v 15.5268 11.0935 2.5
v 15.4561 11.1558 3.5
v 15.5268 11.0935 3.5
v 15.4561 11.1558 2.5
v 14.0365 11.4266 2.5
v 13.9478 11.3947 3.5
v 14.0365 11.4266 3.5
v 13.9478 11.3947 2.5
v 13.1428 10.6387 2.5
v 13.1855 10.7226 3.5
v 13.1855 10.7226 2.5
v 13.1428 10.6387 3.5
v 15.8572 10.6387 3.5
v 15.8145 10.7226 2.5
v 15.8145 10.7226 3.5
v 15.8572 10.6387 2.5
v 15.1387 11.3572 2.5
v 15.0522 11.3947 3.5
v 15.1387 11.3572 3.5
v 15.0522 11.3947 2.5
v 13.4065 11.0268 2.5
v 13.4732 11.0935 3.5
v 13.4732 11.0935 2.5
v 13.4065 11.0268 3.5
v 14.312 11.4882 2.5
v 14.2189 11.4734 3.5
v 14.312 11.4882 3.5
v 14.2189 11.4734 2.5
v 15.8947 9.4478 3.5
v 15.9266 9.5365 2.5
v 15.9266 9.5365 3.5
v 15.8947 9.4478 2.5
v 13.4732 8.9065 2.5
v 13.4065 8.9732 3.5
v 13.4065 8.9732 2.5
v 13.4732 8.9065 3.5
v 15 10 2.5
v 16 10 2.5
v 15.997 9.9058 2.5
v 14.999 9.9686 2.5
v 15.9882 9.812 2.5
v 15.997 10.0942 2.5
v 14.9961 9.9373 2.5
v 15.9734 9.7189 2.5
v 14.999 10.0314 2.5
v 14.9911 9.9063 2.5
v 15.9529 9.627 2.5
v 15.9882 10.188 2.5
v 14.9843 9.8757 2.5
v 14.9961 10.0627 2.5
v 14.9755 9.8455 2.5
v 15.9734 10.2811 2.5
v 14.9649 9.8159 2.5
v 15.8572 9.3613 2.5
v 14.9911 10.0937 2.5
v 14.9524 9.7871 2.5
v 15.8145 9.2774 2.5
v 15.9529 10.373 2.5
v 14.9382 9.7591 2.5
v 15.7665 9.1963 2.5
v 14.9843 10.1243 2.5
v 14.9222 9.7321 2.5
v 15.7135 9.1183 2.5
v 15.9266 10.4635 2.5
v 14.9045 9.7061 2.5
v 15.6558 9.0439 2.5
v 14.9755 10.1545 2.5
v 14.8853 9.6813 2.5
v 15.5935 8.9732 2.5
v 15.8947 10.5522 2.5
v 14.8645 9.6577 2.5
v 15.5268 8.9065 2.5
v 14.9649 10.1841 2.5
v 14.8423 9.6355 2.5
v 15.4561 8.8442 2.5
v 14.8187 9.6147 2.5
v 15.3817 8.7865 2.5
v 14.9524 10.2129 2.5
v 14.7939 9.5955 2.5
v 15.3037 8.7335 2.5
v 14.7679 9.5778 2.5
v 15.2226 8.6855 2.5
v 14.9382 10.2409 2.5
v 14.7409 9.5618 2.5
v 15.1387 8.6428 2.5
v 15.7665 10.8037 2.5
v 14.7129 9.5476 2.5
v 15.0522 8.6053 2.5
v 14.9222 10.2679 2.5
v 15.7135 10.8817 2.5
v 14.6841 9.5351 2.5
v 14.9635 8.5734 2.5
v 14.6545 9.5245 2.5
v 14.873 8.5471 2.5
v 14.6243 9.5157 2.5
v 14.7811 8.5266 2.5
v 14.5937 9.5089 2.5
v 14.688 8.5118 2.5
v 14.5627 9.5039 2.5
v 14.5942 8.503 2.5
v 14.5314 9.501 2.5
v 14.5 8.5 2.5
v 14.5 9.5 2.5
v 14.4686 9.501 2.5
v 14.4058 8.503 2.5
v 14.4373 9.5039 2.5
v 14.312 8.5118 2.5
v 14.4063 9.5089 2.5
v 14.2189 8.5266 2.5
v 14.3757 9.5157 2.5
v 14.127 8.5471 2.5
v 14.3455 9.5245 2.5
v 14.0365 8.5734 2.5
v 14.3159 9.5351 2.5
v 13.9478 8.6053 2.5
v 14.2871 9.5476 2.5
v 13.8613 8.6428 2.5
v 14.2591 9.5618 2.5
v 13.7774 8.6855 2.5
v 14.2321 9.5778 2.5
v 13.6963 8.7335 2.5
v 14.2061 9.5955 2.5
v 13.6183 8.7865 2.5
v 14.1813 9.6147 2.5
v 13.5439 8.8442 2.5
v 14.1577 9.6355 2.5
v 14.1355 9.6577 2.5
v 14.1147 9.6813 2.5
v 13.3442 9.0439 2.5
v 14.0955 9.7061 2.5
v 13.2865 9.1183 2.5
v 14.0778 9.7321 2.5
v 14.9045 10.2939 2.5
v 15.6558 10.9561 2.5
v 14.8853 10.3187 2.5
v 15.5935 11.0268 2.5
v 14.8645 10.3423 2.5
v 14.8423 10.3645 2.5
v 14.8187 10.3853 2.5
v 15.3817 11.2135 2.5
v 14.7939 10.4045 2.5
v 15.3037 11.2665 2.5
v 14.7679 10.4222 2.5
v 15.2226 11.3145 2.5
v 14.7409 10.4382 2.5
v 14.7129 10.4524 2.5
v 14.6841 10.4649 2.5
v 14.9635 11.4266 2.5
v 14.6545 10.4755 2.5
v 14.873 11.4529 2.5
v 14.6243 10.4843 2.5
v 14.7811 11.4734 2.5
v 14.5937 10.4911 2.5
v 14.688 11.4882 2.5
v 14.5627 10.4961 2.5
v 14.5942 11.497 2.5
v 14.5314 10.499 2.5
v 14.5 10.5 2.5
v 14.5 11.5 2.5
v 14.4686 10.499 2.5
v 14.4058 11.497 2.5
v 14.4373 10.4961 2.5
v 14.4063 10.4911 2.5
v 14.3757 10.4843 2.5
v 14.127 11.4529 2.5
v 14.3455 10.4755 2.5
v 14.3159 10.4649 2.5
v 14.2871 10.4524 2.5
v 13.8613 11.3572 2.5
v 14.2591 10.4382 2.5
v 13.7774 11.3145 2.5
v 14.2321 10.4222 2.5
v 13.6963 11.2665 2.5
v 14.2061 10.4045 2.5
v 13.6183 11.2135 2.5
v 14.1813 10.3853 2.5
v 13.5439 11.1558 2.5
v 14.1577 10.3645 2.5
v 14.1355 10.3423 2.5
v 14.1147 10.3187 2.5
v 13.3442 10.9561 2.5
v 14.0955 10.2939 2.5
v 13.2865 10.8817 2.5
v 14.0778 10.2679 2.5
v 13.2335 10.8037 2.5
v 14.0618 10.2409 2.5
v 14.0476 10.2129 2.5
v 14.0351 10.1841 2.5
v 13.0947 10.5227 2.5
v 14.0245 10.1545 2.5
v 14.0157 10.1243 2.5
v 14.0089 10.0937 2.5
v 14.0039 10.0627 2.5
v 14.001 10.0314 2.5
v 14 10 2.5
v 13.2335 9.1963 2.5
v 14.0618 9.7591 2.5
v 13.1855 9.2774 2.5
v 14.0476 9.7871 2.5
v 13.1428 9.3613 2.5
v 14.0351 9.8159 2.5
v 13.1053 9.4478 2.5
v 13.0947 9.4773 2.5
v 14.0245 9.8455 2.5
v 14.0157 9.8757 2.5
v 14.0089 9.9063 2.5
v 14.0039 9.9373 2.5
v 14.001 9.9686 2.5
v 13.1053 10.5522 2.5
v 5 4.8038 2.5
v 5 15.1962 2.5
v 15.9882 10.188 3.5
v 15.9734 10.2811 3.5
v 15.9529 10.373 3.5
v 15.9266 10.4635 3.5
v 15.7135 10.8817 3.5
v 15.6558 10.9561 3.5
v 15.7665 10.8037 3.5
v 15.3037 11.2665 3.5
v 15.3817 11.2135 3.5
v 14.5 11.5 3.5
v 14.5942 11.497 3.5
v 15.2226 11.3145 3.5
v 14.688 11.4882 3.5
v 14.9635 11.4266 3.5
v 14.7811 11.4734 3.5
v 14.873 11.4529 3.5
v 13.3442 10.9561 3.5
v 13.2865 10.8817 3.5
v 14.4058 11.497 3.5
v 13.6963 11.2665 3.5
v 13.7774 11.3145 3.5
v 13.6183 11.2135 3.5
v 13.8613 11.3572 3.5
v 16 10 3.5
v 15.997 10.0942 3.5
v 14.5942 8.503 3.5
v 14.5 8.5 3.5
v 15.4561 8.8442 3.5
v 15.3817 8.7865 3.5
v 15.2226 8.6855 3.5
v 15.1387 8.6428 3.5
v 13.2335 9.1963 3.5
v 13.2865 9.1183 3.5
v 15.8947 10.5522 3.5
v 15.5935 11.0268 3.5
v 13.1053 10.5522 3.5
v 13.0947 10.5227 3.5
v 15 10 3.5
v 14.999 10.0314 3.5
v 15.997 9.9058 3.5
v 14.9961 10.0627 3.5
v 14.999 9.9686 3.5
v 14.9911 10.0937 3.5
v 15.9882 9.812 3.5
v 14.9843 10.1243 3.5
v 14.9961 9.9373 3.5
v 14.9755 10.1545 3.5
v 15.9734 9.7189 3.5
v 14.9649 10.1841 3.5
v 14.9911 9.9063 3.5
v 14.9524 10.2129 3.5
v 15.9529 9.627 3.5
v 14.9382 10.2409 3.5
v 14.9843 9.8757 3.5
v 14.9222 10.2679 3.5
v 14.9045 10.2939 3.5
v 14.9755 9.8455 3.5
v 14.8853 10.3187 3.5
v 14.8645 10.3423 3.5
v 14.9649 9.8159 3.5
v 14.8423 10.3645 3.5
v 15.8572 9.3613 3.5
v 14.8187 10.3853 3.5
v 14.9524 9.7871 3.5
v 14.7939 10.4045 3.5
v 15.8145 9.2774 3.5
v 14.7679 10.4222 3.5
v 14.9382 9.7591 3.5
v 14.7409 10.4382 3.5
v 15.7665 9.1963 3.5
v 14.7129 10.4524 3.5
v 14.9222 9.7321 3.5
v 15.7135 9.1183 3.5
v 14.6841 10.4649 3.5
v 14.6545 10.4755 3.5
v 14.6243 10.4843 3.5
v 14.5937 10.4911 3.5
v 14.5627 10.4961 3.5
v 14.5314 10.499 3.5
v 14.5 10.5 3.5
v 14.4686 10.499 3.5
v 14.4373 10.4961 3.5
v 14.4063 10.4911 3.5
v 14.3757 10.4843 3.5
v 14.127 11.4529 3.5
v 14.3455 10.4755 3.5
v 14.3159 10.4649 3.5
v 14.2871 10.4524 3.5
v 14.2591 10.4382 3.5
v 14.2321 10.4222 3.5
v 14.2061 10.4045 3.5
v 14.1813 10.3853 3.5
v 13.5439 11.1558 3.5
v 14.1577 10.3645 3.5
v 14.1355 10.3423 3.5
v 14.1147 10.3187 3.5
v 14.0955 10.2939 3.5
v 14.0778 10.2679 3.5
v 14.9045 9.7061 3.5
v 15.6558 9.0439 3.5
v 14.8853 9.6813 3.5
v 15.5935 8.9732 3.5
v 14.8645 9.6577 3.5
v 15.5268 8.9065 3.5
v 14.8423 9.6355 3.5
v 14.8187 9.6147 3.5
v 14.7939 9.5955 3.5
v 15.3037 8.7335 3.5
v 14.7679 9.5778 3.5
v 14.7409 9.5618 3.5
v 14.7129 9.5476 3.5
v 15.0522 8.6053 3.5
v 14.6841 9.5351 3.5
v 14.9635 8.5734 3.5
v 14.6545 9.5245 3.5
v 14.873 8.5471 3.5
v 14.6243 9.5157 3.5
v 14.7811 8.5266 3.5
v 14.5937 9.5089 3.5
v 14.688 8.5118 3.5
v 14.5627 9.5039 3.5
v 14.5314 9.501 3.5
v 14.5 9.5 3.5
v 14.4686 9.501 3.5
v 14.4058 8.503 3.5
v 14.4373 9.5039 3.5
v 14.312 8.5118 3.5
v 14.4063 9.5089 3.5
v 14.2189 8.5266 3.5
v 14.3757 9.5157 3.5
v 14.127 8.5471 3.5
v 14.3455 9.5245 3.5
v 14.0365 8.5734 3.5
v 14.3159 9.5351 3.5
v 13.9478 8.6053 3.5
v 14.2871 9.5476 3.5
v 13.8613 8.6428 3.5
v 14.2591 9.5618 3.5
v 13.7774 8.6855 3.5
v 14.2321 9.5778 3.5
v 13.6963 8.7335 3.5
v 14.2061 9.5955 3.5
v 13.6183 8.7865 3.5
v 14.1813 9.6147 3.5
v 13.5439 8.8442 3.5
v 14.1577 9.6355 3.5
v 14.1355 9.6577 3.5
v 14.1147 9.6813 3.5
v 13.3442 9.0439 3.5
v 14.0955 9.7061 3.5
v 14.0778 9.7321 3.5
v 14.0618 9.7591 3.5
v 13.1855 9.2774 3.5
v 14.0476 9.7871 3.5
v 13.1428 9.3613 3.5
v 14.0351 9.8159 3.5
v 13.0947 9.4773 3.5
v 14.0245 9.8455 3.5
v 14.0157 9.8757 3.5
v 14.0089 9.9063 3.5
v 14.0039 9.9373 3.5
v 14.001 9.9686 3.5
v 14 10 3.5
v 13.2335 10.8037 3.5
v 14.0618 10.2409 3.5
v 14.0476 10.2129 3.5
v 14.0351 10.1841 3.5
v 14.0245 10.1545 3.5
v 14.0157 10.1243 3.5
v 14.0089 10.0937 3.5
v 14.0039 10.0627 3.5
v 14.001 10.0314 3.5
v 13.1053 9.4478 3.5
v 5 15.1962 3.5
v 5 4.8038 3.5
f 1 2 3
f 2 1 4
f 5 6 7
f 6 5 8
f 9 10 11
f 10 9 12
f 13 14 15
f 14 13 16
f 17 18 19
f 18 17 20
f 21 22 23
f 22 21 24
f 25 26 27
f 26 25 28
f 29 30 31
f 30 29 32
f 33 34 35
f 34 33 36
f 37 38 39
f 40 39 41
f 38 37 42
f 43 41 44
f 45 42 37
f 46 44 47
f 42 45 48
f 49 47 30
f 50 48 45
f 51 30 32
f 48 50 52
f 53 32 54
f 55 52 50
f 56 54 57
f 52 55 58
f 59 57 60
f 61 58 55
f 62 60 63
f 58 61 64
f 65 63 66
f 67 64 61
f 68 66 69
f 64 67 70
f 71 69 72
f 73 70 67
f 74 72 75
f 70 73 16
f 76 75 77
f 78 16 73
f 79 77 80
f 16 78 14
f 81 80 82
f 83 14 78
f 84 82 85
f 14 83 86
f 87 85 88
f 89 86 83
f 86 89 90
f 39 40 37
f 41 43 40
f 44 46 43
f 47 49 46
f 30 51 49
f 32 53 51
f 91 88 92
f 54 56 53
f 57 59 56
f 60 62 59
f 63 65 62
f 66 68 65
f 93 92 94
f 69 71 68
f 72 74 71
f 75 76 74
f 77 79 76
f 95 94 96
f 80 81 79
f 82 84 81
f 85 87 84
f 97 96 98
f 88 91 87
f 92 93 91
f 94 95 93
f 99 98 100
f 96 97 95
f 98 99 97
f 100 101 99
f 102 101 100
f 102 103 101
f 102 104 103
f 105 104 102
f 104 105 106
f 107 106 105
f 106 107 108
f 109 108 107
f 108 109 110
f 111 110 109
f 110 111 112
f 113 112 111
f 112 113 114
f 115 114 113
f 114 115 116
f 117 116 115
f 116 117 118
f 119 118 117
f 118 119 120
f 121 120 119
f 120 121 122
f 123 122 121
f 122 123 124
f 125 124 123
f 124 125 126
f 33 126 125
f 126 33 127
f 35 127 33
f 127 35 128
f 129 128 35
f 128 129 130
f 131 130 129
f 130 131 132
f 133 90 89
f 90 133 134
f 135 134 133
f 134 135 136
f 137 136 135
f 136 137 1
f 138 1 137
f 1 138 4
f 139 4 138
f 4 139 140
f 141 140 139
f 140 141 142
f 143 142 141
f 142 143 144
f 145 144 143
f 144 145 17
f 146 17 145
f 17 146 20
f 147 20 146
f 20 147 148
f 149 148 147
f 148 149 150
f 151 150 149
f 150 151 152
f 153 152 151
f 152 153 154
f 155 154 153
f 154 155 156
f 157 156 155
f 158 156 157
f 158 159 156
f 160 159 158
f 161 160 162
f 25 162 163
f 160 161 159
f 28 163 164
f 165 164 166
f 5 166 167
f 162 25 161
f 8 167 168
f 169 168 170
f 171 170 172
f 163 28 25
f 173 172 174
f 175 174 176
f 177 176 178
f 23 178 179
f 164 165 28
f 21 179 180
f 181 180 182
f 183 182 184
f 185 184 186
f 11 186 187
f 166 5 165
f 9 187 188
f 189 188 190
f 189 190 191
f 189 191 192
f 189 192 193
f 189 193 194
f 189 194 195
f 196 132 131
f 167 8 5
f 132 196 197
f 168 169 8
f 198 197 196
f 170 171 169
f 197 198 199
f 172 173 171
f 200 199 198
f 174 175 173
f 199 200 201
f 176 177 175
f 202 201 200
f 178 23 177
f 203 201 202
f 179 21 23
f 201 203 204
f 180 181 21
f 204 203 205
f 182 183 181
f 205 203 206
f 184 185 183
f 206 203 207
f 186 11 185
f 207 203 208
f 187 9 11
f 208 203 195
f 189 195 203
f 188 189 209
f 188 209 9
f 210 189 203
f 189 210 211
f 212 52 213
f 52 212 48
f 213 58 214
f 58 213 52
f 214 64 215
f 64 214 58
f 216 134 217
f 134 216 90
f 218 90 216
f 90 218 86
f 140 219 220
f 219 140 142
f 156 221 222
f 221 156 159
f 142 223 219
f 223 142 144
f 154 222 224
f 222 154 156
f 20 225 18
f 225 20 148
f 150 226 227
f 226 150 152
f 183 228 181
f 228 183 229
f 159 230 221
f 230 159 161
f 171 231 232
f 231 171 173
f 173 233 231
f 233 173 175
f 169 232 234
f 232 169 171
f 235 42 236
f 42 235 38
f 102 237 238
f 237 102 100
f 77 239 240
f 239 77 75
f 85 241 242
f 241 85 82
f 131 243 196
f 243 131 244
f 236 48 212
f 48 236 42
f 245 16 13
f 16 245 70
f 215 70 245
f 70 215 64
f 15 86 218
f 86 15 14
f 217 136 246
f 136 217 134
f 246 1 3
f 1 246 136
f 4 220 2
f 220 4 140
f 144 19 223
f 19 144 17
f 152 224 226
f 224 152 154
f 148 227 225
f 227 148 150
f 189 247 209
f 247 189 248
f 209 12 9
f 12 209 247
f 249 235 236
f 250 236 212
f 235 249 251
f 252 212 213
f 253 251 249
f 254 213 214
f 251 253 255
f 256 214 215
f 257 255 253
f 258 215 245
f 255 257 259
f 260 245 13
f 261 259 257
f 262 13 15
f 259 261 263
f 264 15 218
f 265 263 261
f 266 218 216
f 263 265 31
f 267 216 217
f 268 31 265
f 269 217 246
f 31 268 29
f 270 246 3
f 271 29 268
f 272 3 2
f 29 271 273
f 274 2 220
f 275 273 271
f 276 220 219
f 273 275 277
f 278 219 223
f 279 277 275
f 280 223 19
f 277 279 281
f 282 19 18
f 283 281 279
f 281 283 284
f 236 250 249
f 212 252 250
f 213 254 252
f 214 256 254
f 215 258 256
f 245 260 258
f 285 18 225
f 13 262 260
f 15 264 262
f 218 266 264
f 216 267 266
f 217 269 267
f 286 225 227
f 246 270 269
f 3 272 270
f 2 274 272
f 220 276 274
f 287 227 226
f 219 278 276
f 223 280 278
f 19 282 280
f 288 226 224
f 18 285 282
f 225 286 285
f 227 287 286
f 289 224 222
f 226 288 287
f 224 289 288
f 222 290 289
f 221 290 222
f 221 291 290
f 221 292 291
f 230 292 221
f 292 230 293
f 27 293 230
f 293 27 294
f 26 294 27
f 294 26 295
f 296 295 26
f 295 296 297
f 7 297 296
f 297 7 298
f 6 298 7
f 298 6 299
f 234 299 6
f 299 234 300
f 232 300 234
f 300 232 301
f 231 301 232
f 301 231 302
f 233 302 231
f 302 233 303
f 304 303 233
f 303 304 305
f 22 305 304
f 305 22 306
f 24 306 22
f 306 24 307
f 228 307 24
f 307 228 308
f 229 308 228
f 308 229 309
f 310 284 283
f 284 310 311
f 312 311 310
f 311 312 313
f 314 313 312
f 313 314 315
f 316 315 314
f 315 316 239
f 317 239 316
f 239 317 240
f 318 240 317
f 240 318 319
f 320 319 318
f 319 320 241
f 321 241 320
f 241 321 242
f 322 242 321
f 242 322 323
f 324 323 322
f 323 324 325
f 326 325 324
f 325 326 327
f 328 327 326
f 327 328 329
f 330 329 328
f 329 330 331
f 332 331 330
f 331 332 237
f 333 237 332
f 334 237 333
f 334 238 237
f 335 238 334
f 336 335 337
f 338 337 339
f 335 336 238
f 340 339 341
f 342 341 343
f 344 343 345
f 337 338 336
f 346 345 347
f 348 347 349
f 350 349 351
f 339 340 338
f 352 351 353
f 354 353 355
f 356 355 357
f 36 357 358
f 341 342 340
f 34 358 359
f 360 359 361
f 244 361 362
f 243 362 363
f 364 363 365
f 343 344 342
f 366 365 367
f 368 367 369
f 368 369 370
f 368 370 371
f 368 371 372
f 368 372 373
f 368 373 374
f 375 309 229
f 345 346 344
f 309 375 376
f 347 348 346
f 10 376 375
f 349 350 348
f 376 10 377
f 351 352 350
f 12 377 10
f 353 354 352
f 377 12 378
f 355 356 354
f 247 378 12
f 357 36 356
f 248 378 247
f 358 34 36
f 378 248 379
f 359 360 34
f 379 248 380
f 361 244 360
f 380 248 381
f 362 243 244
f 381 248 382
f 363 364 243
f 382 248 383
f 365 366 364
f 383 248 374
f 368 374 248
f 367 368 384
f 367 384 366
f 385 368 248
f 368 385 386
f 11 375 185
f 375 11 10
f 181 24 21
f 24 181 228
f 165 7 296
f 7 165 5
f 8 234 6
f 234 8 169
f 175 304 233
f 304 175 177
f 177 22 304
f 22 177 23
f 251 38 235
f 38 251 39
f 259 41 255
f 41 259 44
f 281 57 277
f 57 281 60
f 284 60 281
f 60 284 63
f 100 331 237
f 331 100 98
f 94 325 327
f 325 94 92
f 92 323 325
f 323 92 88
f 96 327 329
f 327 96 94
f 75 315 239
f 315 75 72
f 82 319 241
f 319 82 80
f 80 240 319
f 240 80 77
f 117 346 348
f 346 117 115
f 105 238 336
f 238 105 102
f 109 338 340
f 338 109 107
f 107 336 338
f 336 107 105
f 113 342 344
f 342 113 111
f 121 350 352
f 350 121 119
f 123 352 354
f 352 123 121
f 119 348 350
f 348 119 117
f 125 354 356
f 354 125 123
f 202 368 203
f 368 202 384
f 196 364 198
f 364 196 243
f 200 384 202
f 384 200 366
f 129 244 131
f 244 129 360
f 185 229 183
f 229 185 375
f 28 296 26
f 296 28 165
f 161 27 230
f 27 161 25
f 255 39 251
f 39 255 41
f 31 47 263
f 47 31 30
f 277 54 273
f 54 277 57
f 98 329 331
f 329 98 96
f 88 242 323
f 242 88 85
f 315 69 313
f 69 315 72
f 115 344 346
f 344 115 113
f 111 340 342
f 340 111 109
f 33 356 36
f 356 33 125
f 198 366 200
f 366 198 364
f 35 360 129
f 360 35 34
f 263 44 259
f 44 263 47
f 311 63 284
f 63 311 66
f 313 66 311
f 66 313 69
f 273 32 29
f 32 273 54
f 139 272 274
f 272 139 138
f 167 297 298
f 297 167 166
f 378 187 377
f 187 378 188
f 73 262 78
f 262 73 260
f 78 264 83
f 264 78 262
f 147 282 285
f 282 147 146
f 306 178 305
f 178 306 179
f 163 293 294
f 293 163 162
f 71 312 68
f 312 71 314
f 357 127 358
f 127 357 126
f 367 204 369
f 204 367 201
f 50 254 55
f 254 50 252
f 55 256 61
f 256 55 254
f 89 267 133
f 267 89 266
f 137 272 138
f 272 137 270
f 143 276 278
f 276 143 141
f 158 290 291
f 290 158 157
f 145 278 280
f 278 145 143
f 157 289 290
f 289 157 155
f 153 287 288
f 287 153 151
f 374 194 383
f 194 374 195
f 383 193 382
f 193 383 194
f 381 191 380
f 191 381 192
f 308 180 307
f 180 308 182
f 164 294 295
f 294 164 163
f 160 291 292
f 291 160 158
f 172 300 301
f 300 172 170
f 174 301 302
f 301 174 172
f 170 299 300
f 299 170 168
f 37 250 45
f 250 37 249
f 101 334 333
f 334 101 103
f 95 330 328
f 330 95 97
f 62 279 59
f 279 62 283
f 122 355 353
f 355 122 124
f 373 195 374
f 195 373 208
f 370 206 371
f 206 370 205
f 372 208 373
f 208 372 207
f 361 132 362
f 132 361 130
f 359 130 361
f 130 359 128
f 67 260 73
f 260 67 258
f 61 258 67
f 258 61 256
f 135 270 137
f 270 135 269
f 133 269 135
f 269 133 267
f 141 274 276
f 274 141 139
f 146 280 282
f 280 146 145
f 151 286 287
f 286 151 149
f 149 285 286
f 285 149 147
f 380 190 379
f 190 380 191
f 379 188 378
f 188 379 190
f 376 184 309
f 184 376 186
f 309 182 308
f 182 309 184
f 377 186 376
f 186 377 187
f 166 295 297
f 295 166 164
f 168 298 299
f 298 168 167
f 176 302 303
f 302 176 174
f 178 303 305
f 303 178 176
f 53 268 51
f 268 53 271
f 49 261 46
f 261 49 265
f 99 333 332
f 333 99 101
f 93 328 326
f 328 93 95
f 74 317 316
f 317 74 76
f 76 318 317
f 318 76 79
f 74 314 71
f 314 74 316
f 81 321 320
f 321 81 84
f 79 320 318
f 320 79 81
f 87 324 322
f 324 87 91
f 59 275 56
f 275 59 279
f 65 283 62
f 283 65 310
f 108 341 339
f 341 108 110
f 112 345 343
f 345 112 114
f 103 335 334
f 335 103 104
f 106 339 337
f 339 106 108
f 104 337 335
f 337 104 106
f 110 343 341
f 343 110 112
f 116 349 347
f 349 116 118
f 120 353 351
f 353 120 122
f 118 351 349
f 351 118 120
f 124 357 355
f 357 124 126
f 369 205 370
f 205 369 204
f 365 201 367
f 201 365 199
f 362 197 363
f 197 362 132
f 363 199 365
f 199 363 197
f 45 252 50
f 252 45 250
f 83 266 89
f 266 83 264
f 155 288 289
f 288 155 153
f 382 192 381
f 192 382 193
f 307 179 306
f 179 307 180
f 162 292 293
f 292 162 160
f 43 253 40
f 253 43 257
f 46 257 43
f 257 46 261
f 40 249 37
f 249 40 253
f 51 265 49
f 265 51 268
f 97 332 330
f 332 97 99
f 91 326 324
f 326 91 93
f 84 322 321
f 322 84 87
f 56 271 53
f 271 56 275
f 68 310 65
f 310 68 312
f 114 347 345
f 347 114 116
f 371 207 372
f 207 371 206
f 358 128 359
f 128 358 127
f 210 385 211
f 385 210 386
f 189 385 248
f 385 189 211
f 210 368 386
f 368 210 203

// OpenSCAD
$fn = 100;
s = 0.0001;

module base(){
    minkowski(){
        translate([1,1,0]) cube([18, 18, 2]);
        cylinder(1,1,1);
    }
}

//translate([0,0,-10]) color("red")
//base();

module thore(thore_radius, tube_diameter, angle){
    rotate_extrude(angle=angle) {
        translate([thore_radius - tube_diameter/2, 0])circle(d=tube_diameter);
    }
}

//translate([0, 10, 0]) rotate([0, 90, 0]) cylinder(5, 0.5,0.5);
//translate([5, 5, 0]) rotate([-90, 0, 0]) cylinder(10, 0.5,0.5);
//translate([5.5,5,0]) rotate([0,0,180]) thore(1, 1, 130);
//translate([5.5,15,0]) rotate([180,0,180]) thore(1, 1, 130);
//translate([5.8, 4.6, 0]) rotate([-90, 0, -50]) cylinder(10, 0.5,0.5);
//translate([13.482, 8.955, 0]) rotate([-90, 0, 50]) cylinder(10, 0.5,0.5);

translate([0, 10, 2.5])
union(){
    translate([8, 0, 0]) cylinder(1, 6, 6, $fn=3);
    translate([14.5, 0, 0])
    difference(){
            cylinder(1, 1.5, 1.5);
            translate([0, 0, -0.5]) cylinder(2, 0.5, 0.5);
    }
}
//minkowski(){
//    color("red") linear_extrude(0.000001) square(20);
//    sphere(1);
//}
